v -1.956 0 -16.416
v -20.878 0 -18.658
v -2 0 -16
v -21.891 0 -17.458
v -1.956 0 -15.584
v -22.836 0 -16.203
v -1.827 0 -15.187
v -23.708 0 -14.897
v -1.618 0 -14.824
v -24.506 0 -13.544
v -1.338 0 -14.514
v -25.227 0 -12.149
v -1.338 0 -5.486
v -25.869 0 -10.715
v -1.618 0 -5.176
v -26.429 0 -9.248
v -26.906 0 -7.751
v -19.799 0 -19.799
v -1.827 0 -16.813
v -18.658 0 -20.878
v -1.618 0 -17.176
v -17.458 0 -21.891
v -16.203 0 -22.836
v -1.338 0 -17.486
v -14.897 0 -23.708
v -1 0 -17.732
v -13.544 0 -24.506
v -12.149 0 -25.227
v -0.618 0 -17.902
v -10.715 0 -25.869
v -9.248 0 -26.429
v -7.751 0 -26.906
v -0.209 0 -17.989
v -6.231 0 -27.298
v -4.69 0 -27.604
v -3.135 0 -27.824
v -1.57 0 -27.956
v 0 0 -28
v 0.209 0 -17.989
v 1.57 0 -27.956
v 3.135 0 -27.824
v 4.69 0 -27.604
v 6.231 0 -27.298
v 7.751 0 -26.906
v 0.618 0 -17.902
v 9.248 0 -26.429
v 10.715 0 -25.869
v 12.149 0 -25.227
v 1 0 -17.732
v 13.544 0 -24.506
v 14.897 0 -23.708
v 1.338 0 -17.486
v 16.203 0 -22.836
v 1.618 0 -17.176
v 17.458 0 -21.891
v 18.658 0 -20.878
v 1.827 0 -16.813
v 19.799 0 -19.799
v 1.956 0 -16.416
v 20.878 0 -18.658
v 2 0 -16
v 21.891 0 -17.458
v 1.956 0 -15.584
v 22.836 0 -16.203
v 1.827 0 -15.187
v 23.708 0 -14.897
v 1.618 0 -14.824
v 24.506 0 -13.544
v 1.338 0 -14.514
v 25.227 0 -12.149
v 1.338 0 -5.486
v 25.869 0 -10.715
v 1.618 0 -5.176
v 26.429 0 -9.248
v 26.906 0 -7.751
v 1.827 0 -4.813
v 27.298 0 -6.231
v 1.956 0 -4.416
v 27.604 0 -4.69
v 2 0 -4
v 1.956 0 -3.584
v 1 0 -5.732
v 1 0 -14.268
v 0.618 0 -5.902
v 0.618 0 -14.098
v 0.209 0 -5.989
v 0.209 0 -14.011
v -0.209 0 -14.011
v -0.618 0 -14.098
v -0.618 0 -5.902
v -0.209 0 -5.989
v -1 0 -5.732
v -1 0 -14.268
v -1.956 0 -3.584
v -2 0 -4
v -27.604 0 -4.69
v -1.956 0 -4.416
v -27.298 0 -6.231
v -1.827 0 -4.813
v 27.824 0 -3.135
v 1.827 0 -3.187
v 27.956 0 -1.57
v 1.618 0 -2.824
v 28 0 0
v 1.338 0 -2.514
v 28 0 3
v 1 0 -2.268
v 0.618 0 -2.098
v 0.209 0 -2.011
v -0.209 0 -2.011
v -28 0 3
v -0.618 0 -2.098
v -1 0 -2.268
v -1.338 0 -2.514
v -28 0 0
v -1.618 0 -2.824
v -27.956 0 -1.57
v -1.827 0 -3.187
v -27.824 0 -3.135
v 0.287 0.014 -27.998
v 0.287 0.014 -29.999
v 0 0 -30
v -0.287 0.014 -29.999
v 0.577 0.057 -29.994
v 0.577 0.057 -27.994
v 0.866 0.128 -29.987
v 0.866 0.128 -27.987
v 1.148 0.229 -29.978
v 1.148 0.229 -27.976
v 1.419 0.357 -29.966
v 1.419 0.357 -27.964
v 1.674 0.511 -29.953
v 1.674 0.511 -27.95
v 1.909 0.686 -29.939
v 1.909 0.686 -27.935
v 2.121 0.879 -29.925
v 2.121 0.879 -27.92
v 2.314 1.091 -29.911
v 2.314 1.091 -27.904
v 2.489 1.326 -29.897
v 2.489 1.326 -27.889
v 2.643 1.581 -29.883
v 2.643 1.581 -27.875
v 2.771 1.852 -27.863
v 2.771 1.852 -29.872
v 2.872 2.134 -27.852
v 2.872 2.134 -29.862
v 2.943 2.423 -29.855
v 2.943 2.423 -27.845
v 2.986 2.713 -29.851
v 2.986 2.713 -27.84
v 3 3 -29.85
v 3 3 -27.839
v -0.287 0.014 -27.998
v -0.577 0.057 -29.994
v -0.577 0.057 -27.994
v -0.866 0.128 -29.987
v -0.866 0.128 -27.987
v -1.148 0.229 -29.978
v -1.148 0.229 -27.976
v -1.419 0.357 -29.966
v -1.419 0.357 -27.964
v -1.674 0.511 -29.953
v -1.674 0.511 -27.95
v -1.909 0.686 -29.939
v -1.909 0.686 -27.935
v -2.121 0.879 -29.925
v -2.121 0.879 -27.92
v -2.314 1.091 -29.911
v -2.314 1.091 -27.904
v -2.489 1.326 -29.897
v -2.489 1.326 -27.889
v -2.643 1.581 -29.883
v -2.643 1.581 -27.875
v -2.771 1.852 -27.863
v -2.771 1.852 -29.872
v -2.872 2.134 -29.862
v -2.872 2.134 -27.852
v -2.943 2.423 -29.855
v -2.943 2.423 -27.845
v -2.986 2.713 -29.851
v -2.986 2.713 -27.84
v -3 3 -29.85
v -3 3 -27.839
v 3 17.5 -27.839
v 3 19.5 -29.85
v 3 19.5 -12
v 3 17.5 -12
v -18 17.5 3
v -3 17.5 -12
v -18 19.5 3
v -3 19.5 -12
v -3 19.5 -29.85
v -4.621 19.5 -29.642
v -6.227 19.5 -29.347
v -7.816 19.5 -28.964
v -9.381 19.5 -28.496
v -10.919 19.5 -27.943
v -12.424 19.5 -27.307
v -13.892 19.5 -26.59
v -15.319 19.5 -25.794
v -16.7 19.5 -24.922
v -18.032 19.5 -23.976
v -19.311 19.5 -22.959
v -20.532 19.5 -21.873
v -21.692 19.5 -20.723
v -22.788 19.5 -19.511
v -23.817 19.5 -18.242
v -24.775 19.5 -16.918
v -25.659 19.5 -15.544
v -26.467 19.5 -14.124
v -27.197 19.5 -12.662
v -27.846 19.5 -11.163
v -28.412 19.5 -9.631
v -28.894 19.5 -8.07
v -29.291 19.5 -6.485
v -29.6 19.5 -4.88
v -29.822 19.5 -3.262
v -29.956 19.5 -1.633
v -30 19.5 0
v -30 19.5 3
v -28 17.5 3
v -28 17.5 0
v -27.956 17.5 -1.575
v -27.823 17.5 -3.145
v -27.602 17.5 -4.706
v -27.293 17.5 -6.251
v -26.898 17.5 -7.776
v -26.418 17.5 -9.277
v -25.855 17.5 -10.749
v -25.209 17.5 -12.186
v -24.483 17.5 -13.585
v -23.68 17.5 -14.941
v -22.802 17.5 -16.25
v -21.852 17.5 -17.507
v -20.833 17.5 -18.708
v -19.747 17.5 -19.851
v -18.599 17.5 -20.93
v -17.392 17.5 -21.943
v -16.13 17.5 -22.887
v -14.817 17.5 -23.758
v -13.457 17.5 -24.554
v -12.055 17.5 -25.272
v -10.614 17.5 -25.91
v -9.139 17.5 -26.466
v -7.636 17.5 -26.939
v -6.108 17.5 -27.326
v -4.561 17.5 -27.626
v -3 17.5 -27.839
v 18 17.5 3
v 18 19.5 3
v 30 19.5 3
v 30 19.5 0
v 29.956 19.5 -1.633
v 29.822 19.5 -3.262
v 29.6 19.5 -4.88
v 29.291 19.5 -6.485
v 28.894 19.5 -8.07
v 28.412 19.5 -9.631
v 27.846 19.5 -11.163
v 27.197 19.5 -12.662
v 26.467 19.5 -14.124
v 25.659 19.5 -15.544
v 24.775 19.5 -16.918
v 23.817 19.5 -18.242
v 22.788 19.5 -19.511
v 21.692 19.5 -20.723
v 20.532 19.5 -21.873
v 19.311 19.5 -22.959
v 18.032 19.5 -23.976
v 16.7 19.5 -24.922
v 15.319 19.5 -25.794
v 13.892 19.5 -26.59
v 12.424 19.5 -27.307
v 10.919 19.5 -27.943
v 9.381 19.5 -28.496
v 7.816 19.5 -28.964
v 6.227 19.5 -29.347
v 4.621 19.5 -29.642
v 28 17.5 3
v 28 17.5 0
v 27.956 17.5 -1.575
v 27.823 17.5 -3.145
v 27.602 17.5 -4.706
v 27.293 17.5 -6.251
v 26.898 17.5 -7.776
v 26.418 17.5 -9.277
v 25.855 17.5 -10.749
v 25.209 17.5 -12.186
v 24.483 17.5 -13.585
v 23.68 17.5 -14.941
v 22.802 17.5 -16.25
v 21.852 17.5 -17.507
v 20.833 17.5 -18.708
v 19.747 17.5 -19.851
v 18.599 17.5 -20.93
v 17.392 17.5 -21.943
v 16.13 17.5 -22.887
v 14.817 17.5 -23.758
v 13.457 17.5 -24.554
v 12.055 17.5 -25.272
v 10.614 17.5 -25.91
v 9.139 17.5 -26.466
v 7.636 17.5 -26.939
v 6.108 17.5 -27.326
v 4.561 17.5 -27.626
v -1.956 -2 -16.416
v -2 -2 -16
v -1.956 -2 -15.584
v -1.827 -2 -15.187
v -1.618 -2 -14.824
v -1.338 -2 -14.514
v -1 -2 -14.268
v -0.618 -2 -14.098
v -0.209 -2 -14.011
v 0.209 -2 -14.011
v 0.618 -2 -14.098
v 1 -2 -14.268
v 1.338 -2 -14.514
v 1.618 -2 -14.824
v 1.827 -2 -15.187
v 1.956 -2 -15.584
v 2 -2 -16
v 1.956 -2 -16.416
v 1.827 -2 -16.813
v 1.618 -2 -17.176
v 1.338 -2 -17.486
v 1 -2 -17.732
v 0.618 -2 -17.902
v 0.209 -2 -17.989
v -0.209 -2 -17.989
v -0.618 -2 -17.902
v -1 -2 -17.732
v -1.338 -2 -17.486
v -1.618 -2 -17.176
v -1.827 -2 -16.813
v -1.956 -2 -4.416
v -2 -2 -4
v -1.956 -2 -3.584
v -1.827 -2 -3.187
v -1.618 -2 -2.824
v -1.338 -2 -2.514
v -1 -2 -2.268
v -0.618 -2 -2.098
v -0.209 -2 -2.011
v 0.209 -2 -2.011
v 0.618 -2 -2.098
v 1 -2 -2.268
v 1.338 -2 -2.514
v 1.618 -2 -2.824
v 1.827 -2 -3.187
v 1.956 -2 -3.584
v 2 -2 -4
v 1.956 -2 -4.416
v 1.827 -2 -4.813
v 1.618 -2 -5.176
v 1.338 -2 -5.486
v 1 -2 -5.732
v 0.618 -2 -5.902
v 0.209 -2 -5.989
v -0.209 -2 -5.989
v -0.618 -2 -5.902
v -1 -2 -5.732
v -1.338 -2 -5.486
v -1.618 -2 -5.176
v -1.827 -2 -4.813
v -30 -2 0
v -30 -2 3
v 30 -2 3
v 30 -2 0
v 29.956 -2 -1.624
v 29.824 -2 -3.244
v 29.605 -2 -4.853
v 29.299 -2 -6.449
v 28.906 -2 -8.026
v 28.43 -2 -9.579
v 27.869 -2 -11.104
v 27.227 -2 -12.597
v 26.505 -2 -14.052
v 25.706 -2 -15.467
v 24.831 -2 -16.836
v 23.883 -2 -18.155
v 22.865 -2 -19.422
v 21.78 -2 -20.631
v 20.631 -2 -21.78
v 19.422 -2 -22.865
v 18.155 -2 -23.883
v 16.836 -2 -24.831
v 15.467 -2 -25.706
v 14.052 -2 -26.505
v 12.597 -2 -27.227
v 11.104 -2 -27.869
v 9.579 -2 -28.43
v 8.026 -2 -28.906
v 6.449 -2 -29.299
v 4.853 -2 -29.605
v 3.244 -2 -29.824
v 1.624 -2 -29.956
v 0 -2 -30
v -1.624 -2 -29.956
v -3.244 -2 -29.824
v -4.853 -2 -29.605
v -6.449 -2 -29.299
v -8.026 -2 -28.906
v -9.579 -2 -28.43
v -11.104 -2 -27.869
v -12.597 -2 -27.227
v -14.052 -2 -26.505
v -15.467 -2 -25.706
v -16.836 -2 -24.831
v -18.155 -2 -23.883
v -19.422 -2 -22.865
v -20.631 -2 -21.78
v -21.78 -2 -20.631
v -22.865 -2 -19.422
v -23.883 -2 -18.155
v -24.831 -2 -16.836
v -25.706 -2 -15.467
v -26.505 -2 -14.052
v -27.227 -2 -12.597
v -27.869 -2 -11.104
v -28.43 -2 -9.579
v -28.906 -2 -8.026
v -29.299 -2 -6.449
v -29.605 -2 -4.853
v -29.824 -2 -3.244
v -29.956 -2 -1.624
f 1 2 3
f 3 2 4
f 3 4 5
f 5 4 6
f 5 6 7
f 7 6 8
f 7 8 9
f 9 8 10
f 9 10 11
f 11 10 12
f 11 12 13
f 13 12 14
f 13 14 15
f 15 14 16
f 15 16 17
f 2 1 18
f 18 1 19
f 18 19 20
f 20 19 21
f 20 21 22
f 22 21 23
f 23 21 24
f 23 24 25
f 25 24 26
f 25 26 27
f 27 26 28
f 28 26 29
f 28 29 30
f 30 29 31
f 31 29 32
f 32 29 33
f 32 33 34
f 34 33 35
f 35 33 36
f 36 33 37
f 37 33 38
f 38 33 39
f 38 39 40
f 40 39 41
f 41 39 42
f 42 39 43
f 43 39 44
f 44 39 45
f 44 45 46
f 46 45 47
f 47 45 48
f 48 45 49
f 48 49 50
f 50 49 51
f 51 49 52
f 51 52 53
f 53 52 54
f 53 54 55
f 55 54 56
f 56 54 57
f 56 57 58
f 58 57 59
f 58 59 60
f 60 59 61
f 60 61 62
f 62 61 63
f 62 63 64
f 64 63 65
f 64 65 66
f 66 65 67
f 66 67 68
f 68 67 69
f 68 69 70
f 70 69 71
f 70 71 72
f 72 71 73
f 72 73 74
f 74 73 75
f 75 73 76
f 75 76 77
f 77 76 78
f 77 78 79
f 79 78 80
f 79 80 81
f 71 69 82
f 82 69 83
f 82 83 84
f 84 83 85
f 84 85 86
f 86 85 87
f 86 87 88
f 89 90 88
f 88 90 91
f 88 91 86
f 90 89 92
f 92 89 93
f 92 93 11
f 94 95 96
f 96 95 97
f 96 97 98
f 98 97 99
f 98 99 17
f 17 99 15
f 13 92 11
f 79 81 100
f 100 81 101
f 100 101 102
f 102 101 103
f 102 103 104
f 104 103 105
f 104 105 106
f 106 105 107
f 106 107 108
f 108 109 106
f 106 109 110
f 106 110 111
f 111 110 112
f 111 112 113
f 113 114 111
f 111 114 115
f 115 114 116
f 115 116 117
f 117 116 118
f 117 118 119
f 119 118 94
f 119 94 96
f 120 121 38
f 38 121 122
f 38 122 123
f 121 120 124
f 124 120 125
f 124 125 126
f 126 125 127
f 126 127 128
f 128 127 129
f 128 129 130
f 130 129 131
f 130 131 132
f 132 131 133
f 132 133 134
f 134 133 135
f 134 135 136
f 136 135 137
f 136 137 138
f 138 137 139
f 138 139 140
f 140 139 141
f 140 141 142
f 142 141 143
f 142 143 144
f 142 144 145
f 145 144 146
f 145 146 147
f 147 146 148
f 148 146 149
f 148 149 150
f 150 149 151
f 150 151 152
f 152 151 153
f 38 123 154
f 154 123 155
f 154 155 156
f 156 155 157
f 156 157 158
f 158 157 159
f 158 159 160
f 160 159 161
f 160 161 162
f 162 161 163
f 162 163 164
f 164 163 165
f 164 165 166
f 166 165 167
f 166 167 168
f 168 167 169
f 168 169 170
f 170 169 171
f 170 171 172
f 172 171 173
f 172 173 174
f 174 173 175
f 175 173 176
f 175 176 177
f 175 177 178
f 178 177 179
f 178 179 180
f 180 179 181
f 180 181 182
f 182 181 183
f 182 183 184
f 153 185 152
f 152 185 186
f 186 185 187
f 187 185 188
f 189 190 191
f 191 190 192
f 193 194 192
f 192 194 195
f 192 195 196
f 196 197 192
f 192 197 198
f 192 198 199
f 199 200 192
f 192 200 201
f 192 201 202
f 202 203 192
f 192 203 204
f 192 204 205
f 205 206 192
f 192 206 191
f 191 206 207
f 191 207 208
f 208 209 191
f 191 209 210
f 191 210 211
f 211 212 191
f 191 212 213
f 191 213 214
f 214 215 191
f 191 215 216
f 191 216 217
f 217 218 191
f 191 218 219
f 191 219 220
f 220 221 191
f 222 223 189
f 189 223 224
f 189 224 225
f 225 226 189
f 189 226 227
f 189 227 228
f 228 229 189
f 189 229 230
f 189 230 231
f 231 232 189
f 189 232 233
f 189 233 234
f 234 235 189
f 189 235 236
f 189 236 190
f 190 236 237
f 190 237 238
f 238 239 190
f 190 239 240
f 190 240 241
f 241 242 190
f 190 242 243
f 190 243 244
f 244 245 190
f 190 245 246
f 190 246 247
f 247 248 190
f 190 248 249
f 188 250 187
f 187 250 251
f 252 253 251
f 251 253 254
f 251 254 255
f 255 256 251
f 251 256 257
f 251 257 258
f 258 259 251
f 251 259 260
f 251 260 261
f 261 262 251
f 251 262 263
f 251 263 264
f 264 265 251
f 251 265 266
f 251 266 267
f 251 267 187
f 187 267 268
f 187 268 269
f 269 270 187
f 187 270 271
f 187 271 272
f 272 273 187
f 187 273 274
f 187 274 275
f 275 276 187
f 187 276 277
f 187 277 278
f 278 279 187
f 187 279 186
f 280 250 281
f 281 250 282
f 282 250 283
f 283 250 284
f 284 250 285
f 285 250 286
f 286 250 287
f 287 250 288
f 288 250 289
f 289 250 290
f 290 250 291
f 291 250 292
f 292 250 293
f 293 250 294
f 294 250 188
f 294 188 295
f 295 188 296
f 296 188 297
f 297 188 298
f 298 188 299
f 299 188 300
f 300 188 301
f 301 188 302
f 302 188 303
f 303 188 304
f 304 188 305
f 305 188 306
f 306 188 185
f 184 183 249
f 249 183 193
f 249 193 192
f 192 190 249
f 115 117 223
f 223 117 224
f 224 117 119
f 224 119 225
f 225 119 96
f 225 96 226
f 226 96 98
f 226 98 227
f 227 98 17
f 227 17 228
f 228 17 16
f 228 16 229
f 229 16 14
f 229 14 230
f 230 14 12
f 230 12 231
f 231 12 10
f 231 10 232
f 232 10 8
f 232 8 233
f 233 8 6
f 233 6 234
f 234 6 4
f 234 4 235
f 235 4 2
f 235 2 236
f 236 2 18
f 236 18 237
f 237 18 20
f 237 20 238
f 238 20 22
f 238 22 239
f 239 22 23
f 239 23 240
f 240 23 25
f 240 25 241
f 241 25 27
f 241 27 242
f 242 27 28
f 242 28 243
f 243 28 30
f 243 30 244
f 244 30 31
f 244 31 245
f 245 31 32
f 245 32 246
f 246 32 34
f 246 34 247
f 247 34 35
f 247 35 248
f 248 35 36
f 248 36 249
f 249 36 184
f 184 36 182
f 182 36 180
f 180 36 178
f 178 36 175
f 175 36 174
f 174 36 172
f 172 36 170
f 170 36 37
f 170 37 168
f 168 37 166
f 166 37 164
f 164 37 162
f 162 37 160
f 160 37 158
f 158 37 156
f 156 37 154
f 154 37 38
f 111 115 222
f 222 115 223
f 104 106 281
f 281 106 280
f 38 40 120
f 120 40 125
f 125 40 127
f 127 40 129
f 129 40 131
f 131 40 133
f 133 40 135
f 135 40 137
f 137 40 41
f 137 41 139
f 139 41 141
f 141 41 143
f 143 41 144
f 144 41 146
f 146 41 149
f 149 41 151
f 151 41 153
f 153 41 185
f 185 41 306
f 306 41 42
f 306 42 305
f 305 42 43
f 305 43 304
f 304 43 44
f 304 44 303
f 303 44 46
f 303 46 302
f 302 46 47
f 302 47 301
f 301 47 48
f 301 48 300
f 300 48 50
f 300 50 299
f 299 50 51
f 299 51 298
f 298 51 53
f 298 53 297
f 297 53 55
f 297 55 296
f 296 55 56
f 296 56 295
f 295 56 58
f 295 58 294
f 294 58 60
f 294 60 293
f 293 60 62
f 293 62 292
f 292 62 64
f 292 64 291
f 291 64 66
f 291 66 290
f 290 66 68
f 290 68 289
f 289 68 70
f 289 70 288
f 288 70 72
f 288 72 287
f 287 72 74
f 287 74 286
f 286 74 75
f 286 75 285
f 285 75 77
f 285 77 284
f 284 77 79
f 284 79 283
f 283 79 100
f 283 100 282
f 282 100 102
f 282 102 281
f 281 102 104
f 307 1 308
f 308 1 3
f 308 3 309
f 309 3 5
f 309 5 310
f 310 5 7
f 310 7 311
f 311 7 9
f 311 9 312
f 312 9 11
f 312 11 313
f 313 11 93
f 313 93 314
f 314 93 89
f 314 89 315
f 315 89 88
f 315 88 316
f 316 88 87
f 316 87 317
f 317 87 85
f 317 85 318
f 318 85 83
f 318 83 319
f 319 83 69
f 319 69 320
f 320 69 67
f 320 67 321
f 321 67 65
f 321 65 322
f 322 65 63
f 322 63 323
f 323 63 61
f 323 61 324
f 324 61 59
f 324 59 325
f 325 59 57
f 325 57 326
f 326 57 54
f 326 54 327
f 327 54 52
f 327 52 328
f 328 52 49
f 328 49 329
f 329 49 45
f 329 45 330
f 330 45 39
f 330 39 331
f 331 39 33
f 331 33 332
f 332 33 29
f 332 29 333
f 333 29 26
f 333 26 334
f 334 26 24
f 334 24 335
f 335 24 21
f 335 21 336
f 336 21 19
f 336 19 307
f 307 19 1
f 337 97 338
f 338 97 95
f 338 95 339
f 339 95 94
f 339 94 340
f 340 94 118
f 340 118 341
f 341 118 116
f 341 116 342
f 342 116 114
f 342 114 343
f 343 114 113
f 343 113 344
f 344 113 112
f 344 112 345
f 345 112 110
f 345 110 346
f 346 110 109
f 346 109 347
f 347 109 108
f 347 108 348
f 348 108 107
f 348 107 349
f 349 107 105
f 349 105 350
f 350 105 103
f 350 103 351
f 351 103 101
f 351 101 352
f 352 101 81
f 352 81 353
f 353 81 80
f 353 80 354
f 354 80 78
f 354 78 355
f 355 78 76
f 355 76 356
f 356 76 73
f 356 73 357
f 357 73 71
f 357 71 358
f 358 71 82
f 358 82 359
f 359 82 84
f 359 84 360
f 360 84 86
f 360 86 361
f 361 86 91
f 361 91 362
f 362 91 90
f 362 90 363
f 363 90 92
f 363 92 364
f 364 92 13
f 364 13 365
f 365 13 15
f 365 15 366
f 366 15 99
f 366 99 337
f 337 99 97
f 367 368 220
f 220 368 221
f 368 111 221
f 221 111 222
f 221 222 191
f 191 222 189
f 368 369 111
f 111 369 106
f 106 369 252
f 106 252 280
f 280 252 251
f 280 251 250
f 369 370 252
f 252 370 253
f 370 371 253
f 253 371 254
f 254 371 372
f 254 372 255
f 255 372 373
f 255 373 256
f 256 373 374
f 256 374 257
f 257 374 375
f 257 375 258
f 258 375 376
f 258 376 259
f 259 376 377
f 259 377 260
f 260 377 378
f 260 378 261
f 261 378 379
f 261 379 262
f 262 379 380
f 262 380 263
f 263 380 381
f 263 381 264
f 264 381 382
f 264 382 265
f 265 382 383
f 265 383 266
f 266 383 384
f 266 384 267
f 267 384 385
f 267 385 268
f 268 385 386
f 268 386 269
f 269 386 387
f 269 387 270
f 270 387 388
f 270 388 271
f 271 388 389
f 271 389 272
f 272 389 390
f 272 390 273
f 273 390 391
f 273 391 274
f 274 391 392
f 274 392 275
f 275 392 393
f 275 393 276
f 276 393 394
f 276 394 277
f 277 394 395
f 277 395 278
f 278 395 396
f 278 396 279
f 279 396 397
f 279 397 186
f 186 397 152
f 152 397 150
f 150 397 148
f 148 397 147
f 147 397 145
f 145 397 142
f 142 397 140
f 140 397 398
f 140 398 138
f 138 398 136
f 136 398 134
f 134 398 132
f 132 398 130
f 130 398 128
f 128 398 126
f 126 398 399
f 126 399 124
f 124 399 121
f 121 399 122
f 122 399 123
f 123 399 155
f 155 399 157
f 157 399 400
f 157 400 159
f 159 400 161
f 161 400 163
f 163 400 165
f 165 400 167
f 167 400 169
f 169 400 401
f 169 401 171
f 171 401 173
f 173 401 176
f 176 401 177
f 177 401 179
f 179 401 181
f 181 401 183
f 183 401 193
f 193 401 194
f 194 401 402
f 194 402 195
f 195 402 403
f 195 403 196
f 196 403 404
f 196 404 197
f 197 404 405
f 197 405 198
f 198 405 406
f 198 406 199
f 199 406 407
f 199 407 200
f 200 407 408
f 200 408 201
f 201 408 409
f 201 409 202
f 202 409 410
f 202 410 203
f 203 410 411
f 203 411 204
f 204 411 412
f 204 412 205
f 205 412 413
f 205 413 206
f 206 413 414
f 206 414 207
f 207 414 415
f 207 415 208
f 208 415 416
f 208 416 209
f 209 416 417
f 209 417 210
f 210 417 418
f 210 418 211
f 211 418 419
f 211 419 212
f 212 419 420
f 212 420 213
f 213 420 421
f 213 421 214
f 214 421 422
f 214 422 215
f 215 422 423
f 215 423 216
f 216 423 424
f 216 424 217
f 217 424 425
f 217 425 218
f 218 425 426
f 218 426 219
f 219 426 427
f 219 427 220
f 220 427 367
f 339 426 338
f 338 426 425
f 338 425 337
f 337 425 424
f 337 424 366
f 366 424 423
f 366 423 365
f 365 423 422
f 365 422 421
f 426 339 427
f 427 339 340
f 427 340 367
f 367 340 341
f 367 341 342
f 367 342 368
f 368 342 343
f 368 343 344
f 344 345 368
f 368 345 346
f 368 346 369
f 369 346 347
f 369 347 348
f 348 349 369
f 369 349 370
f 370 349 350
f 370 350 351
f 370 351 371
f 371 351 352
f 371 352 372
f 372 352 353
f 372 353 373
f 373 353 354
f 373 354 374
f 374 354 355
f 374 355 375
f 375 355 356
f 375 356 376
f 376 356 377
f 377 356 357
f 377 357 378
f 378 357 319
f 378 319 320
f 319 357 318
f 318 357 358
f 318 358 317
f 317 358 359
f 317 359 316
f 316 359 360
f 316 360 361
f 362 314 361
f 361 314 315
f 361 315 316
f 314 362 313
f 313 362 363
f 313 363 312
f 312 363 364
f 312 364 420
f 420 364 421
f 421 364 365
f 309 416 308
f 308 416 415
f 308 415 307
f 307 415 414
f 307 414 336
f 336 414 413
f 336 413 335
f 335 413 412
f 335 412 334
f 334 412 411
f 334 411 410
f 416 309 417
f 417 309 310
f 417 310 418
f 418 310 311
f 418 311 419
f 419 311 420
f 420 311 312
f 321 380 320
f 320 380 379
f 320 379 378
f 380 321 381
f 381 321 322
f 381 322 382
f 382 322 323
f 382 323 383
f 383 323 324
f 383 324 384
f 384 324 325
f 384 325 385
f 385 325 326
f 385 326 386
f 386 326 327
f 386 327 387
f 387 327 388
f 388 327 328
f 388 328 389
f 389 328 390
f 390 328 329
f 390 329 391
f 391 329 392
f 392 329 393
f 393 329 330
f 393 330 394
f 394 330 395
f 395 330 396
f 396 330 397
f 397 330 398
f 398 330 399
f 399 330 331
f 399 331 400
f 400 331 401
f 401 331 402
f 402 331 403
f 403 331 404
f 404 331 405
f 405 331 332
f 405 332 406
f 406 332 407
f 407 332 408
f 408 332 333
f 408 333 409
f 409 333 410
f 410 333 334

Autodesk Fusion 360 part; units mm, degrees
sketch "Sketch1" plane through (0, 0, 0) normal (0, 1, 0) x (1, 0, 0)
  arc A0 (28, 0) -> (-28, 0) centre (0, 0) ccw
  line L0 (-28, 0) -> (-28, -3)
  line L1 (0, -1.75) -> (0, -22.5)
  line L2 (28, 0) -> (28, -3)
  line L3 (-30, 0) -> (-30, -3)
  arc A1 (30, 0) -> (-30, 0) centre (0, 0) ccw
  line L4 (30, 0) -> (30, -3)
  line L5 (-30, -3) -> (-28, -3)
  line L6 (28, -3) -> (30, -3)
  line L7 (-3, 29.8496) -> (-3, 12)
  line L8 (-3, 12) -> (-18, -3)
  line L9 (-18, -3) -> (-28, -3)
  line L10 (18, -3) -> (28, -3)
  line L11 (3, 12) -> (18, -3)
  line L12 (3, 29.8496) -> (3, 12)
  line L13 (-18, -3) -> (18, -3)
  circle A2 centre (0, 4) radius 2
  circle A3 centre (0, 16) radius 2
  dimension "d1" = 28
  dimension "d2" = 3
  dimension "d3" = -2
  dimension "d4" = 135
  dimension "d5" = 6
  dimension "d6" = 15
  dimension "d7" = 7
  dimension "d8" = 12
  dimension "d9" = 4
extrude "Extrude1" add sketch "Sketch1" against normal blind 2
extrude "Extrude2" add sketch "Sketch1" along normal blind 17.5 contours A0 L2 A1 L4 L6 L12 | A0 L0 L3 A1 L5 L7
extrude "Extrude3" add sketch "Sketch1" along normal blind 2 from surface at 17.5 contours A0 L2 L10 L11 L12 | A0 L2 A1 L4 L6 L12 | A0 L0 L7 L8 L9 | A0 L0 L3 A1 L5 L7
fillet "Fillet1" radius 3 2 edges at (3, 0, -28.8442) (-3, 0, -28.8442)
equation "d1 = ( 56 / 2 ) * 1 mm"
